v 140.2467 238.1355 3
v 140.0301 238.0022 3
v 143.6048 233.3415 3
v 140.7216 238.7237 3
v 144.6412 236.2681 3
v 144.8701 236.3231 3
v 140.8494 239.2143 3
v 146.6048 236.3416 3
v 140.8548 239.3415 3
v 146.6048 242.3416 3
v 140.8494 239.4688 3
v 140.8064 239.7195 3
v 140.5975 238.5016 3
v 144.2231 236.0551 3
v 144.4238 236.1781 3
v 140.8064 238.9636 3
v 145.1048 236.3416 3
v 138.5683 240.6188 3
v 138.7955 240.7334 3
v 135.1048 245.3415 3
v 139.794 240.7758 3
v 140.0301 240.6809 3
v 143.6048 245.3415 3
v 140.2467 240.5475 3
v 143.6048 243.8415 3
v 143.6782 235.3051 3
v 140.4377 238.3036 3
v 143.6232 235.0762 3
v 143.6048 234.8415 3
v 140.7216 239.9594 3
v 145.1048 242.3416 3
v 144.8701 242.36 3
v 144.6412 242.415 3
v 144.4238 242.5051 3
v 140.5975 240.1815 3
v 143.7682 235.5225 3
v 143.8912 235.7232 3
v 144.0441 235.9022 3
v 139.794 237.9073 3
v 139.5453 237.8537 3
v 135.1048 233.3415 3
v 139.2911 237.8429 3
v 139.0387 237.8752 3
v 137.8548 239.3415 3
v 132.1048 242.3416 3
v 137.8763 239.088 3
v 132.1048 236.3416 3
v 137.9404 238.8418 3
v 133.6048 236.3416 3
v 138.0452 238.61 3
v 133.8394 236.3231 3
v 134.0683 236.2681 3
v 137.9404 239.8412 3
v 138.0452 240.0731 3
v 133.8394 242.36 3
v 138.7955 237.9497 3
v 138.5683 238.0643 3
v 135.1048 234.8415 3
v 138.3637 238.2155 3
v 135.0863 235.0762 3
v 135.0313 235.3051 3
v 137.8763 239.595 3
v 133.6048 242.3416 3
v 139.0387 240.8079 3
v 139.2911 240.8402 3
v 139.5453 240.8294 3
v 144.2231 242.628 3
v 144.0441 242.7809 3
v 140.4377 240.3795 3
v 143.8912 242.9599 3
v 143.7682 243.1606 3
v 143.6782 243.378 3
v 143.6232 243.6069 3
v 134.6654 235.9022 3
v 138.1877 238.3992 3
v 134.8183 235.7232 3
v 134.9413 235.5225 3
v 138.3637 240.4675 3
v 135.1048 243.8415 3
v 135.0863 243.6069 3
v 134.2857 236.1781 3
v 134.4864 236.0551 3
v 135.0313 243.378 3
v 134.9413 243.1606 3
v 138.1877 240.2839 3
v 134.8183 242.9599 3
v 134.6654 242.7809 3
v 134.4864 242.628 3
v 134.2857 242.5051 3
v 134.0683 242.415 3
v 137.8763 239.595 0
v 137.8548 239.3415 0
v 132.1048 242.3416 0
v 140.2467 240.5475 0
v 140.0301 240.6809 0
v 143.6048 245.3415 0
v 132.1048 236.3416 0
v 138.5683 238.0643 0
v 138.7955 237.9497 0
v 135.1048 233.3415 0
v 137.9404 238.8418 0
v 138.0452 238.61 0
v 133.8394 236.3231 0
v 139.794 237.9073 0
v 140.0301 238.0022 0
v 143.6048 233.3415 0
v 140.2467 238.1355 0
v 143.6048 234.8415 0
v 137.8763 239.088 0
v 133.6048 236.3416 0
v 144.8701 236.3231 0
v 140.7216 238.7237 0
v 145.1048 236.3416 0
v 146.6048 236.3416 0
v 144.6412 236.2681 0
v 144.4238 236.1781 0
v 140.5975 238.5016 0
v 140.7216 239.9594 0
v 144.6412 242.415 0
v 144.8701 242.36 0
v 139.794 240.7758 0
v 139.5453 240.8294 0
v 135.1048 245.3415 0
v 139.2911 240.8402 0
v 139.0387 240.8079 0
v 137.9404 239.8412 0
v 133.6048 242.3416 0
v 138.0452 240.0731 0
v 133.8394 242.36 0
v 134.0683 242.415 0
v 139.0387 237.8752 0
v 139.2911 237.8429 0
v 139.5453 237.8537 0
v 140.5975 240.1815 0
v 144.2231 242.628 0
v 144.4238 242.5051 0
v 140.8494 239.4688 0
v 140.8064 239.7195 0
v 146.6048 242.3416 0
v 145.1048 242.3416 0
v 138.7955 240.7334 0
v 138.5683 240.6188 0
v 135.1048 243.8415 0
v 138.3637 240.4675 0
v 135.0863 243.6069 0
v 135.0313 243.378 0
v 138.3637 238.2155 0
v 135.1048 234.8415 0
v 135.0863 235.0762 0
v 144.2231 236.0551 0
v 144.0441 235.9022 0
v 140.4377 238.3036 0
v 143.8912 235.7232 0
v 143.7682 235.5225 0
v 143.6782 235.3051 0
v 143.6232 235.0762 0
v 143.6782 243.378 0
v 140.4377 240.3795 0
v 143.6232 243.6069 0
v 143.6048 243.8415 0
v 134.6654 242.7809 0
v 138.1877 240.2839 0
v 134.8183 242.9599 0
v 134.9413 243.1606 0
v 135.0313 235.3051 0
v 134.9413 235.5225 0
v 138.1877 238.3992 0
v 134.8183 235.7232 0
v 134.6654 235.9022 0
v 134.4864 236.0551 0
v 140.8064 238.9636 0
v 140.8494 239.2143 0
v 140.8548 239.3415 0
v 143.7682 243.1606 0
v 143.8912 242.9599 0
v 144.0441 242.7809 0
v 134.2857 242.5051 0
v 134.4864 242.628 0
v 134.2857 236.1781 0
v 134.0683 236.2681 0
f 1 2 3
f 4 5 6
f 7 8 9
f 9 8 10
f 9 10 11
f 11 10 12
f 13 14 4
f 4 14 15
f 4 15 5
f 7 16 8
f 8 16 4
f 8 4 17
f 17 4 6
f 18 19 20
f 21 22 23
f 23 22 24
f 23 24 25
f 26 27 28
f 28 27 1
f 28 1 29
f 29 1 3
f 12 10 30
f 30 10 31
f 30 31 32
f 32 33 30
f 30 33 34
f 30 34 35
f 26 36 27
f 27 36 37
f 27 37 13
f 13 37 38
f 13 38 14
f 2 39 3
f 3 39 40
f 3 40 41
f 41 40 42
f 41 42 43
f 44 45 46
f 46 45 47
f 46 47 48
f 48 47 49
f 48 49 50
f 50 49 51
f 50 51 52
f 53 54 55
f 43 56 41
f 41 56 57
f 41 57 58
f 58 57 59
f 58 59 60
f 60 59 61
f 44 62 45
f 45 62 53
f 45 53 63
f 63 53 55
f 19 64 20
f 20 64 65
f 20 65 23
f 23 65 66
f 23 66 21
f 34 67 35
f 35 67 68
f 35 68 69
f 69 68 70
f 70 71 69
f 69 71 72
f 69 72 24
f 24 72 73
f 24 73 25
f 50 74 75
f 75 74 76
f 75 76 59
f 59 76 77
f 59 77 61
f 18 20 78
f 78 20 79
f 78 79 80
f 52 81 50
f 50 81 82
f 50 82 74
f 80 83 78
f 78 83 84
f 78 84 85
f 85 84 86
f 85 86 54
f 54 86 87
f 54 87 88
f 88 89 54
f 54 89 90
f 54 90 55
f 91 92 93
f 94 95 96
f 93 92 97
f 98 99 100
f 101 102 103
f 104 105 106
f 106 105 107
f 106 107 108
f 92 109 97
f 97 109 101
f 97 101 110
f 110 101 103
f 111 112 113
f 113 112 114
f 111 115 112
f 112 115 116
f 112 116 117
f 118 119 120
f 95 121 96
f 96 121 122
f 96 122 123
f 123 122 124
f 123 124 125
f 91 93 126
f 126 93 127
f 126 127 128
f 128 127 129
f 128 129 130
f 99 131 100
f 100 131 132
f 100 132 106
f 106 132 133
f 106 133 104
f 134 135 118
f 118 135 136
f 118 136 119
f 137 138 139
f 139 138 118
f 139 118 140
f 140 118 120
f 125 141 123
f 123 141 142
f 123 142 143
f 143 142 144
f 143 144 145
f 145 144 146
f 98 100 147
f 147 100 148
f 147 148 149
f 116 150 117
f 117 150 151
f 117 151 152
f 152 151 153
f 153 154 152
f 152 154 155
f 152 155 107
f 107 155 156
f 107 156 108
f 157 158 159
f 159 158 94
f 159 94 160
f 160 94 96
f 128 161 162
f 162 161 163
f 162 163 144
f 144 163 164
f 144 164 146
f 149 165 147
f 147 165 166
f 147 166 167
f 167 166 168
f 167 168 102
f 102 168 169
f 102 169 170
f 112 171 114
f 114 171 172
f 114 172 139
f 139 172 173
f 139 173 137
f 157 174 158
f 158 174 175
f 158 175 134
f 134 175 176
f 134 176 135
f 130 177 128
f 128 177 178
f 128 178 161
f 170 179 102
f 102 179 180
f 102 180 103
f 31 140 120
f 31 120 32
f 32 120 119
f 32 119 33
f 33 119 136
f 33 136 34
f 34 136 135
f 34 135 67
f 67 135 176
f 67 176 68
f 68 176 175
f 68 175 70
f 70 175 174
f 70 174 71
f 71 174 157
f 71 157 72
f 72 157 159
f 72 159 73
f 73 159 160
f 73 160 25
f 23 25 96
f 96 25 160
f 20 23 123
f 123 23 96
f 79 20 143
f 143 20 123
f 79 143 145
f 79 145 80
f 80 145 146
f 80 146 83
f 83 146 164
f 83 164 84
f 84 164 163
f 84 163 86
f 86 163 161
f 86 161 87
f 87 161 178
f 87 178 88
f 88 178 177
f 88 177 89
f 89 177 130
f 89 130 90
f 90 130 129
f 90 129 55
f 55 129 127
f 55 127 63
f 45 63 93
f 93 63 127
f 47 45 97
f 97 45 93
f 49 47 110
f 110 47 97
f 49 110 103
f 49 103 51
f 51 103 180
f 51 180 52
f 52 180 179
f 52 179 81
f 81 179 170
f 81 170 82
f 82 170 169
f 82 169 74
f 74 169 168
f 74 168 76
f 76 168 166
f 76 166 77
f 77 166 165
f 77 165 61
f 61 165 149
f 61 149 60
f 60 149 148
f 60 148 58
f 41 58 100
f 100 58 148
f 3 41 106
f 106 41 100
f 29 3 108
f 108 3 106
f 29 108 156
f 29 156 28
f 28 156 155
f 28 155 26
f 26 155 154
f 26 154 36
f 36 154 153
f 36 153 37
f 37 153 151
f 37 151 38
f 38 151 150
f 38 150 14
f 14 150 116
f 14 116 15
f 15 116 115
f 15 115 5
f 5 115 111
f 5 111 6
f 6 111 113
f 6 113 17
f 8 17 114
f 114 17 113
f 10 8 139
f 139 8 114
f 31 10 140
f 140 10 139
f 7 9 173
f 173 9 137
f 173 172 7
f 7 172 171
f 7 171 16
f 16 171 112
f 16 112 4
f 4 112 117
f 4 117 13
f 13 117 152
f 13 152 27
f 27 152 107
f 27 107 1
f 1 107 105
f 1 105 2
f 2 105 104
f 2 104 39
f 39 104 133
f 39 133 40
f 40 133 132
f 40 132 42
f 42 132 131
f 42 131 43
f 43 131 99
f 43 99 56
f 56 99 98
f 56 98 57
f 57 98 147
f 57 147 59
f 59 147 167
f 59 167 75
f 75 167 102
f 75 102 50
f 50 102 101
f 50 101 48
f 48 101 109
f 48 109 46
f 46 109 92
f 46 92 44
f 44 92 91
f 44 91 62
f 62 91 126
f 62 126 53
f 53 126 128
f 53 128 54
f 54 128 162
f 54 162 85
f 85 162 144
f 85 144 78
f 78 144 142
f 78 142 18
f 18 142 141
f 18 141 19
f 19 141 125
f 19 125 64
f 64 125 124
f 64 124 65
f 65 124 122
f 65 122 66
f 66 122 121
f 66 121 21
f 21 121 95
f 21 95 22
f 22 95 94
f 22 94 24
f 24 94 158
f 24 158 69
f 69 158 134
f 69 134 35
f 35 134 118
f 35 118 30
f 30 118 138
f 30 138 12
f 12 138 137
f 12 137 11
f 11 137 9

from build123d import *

# Parameters (mm, degrees)
MODEL_R                 = 1.5
SALIENTE_EXTRUIR1_DEPTH = 3


with BuildPart() as part:
    # Model → Saliente-Extruir1 (new body)
    with BuildSketch(Plane.XY):
        with BuildLine():
            Line((132.104752837, 242.341546665), (132.104752837, 236.341546665))
            Line((132.104752837, 236.341546665), (133.604752837, 236.341546665))
            ThreePointArc((133.604752837, 236.341546665), (134.665413008, 235.902206837), (135.104752837, 234.841546665))
            Line((135.104752837, 234.841546665), (135.104752837, 233.341546665))
            Line((135.104752837, 233.341546665), (143.604752837, 233.341546665))
            Line((143.604752837, 233.341546665), (143.604752837, 234.841546665))
            ThreePointArc((143.604752837, 234.841546665), (144.044092665, 235.902206837), (145.104752837, 236.341546665))
            Line((145.104752837, 236.341546665), (146.604752837, 236.341546665))
            Line((146.604752837, 236.341546665), (146.604752837, 242.341546665))
            Line((146.604752837, 242.341546665), (145.104752837, 242.341546665))
            ThreePointArc((145.104752837, 242.341546665), (144.044092665, 242.780886493), (143.604752837, 243.841546665))
            Line((143.604752837, 243.841546665), (143.604752837, 245.341546665))
            Line((143.604752837, 245.341546665), (135.104752837, 245.341546665))
            Line((135.104752837, 245.341546665), (135.104752837, 243.841546665))
            ThreePointArc((135.104752837, 243.841546665), (134.665413008, 242.780886493), (133.604752837, 242.341546665))
            Line((133.604752837, 242.341546665), (132.104752837, 242.341546665))
        make_face()
        with Locations((139.354752837, 239.341546665)):
            Circle(MODEL_R, mode=Mode.SUBTRACT)
    extrude(amount=SALIENTE_EXTRUIR1_DEPTH)


solid = part.part
